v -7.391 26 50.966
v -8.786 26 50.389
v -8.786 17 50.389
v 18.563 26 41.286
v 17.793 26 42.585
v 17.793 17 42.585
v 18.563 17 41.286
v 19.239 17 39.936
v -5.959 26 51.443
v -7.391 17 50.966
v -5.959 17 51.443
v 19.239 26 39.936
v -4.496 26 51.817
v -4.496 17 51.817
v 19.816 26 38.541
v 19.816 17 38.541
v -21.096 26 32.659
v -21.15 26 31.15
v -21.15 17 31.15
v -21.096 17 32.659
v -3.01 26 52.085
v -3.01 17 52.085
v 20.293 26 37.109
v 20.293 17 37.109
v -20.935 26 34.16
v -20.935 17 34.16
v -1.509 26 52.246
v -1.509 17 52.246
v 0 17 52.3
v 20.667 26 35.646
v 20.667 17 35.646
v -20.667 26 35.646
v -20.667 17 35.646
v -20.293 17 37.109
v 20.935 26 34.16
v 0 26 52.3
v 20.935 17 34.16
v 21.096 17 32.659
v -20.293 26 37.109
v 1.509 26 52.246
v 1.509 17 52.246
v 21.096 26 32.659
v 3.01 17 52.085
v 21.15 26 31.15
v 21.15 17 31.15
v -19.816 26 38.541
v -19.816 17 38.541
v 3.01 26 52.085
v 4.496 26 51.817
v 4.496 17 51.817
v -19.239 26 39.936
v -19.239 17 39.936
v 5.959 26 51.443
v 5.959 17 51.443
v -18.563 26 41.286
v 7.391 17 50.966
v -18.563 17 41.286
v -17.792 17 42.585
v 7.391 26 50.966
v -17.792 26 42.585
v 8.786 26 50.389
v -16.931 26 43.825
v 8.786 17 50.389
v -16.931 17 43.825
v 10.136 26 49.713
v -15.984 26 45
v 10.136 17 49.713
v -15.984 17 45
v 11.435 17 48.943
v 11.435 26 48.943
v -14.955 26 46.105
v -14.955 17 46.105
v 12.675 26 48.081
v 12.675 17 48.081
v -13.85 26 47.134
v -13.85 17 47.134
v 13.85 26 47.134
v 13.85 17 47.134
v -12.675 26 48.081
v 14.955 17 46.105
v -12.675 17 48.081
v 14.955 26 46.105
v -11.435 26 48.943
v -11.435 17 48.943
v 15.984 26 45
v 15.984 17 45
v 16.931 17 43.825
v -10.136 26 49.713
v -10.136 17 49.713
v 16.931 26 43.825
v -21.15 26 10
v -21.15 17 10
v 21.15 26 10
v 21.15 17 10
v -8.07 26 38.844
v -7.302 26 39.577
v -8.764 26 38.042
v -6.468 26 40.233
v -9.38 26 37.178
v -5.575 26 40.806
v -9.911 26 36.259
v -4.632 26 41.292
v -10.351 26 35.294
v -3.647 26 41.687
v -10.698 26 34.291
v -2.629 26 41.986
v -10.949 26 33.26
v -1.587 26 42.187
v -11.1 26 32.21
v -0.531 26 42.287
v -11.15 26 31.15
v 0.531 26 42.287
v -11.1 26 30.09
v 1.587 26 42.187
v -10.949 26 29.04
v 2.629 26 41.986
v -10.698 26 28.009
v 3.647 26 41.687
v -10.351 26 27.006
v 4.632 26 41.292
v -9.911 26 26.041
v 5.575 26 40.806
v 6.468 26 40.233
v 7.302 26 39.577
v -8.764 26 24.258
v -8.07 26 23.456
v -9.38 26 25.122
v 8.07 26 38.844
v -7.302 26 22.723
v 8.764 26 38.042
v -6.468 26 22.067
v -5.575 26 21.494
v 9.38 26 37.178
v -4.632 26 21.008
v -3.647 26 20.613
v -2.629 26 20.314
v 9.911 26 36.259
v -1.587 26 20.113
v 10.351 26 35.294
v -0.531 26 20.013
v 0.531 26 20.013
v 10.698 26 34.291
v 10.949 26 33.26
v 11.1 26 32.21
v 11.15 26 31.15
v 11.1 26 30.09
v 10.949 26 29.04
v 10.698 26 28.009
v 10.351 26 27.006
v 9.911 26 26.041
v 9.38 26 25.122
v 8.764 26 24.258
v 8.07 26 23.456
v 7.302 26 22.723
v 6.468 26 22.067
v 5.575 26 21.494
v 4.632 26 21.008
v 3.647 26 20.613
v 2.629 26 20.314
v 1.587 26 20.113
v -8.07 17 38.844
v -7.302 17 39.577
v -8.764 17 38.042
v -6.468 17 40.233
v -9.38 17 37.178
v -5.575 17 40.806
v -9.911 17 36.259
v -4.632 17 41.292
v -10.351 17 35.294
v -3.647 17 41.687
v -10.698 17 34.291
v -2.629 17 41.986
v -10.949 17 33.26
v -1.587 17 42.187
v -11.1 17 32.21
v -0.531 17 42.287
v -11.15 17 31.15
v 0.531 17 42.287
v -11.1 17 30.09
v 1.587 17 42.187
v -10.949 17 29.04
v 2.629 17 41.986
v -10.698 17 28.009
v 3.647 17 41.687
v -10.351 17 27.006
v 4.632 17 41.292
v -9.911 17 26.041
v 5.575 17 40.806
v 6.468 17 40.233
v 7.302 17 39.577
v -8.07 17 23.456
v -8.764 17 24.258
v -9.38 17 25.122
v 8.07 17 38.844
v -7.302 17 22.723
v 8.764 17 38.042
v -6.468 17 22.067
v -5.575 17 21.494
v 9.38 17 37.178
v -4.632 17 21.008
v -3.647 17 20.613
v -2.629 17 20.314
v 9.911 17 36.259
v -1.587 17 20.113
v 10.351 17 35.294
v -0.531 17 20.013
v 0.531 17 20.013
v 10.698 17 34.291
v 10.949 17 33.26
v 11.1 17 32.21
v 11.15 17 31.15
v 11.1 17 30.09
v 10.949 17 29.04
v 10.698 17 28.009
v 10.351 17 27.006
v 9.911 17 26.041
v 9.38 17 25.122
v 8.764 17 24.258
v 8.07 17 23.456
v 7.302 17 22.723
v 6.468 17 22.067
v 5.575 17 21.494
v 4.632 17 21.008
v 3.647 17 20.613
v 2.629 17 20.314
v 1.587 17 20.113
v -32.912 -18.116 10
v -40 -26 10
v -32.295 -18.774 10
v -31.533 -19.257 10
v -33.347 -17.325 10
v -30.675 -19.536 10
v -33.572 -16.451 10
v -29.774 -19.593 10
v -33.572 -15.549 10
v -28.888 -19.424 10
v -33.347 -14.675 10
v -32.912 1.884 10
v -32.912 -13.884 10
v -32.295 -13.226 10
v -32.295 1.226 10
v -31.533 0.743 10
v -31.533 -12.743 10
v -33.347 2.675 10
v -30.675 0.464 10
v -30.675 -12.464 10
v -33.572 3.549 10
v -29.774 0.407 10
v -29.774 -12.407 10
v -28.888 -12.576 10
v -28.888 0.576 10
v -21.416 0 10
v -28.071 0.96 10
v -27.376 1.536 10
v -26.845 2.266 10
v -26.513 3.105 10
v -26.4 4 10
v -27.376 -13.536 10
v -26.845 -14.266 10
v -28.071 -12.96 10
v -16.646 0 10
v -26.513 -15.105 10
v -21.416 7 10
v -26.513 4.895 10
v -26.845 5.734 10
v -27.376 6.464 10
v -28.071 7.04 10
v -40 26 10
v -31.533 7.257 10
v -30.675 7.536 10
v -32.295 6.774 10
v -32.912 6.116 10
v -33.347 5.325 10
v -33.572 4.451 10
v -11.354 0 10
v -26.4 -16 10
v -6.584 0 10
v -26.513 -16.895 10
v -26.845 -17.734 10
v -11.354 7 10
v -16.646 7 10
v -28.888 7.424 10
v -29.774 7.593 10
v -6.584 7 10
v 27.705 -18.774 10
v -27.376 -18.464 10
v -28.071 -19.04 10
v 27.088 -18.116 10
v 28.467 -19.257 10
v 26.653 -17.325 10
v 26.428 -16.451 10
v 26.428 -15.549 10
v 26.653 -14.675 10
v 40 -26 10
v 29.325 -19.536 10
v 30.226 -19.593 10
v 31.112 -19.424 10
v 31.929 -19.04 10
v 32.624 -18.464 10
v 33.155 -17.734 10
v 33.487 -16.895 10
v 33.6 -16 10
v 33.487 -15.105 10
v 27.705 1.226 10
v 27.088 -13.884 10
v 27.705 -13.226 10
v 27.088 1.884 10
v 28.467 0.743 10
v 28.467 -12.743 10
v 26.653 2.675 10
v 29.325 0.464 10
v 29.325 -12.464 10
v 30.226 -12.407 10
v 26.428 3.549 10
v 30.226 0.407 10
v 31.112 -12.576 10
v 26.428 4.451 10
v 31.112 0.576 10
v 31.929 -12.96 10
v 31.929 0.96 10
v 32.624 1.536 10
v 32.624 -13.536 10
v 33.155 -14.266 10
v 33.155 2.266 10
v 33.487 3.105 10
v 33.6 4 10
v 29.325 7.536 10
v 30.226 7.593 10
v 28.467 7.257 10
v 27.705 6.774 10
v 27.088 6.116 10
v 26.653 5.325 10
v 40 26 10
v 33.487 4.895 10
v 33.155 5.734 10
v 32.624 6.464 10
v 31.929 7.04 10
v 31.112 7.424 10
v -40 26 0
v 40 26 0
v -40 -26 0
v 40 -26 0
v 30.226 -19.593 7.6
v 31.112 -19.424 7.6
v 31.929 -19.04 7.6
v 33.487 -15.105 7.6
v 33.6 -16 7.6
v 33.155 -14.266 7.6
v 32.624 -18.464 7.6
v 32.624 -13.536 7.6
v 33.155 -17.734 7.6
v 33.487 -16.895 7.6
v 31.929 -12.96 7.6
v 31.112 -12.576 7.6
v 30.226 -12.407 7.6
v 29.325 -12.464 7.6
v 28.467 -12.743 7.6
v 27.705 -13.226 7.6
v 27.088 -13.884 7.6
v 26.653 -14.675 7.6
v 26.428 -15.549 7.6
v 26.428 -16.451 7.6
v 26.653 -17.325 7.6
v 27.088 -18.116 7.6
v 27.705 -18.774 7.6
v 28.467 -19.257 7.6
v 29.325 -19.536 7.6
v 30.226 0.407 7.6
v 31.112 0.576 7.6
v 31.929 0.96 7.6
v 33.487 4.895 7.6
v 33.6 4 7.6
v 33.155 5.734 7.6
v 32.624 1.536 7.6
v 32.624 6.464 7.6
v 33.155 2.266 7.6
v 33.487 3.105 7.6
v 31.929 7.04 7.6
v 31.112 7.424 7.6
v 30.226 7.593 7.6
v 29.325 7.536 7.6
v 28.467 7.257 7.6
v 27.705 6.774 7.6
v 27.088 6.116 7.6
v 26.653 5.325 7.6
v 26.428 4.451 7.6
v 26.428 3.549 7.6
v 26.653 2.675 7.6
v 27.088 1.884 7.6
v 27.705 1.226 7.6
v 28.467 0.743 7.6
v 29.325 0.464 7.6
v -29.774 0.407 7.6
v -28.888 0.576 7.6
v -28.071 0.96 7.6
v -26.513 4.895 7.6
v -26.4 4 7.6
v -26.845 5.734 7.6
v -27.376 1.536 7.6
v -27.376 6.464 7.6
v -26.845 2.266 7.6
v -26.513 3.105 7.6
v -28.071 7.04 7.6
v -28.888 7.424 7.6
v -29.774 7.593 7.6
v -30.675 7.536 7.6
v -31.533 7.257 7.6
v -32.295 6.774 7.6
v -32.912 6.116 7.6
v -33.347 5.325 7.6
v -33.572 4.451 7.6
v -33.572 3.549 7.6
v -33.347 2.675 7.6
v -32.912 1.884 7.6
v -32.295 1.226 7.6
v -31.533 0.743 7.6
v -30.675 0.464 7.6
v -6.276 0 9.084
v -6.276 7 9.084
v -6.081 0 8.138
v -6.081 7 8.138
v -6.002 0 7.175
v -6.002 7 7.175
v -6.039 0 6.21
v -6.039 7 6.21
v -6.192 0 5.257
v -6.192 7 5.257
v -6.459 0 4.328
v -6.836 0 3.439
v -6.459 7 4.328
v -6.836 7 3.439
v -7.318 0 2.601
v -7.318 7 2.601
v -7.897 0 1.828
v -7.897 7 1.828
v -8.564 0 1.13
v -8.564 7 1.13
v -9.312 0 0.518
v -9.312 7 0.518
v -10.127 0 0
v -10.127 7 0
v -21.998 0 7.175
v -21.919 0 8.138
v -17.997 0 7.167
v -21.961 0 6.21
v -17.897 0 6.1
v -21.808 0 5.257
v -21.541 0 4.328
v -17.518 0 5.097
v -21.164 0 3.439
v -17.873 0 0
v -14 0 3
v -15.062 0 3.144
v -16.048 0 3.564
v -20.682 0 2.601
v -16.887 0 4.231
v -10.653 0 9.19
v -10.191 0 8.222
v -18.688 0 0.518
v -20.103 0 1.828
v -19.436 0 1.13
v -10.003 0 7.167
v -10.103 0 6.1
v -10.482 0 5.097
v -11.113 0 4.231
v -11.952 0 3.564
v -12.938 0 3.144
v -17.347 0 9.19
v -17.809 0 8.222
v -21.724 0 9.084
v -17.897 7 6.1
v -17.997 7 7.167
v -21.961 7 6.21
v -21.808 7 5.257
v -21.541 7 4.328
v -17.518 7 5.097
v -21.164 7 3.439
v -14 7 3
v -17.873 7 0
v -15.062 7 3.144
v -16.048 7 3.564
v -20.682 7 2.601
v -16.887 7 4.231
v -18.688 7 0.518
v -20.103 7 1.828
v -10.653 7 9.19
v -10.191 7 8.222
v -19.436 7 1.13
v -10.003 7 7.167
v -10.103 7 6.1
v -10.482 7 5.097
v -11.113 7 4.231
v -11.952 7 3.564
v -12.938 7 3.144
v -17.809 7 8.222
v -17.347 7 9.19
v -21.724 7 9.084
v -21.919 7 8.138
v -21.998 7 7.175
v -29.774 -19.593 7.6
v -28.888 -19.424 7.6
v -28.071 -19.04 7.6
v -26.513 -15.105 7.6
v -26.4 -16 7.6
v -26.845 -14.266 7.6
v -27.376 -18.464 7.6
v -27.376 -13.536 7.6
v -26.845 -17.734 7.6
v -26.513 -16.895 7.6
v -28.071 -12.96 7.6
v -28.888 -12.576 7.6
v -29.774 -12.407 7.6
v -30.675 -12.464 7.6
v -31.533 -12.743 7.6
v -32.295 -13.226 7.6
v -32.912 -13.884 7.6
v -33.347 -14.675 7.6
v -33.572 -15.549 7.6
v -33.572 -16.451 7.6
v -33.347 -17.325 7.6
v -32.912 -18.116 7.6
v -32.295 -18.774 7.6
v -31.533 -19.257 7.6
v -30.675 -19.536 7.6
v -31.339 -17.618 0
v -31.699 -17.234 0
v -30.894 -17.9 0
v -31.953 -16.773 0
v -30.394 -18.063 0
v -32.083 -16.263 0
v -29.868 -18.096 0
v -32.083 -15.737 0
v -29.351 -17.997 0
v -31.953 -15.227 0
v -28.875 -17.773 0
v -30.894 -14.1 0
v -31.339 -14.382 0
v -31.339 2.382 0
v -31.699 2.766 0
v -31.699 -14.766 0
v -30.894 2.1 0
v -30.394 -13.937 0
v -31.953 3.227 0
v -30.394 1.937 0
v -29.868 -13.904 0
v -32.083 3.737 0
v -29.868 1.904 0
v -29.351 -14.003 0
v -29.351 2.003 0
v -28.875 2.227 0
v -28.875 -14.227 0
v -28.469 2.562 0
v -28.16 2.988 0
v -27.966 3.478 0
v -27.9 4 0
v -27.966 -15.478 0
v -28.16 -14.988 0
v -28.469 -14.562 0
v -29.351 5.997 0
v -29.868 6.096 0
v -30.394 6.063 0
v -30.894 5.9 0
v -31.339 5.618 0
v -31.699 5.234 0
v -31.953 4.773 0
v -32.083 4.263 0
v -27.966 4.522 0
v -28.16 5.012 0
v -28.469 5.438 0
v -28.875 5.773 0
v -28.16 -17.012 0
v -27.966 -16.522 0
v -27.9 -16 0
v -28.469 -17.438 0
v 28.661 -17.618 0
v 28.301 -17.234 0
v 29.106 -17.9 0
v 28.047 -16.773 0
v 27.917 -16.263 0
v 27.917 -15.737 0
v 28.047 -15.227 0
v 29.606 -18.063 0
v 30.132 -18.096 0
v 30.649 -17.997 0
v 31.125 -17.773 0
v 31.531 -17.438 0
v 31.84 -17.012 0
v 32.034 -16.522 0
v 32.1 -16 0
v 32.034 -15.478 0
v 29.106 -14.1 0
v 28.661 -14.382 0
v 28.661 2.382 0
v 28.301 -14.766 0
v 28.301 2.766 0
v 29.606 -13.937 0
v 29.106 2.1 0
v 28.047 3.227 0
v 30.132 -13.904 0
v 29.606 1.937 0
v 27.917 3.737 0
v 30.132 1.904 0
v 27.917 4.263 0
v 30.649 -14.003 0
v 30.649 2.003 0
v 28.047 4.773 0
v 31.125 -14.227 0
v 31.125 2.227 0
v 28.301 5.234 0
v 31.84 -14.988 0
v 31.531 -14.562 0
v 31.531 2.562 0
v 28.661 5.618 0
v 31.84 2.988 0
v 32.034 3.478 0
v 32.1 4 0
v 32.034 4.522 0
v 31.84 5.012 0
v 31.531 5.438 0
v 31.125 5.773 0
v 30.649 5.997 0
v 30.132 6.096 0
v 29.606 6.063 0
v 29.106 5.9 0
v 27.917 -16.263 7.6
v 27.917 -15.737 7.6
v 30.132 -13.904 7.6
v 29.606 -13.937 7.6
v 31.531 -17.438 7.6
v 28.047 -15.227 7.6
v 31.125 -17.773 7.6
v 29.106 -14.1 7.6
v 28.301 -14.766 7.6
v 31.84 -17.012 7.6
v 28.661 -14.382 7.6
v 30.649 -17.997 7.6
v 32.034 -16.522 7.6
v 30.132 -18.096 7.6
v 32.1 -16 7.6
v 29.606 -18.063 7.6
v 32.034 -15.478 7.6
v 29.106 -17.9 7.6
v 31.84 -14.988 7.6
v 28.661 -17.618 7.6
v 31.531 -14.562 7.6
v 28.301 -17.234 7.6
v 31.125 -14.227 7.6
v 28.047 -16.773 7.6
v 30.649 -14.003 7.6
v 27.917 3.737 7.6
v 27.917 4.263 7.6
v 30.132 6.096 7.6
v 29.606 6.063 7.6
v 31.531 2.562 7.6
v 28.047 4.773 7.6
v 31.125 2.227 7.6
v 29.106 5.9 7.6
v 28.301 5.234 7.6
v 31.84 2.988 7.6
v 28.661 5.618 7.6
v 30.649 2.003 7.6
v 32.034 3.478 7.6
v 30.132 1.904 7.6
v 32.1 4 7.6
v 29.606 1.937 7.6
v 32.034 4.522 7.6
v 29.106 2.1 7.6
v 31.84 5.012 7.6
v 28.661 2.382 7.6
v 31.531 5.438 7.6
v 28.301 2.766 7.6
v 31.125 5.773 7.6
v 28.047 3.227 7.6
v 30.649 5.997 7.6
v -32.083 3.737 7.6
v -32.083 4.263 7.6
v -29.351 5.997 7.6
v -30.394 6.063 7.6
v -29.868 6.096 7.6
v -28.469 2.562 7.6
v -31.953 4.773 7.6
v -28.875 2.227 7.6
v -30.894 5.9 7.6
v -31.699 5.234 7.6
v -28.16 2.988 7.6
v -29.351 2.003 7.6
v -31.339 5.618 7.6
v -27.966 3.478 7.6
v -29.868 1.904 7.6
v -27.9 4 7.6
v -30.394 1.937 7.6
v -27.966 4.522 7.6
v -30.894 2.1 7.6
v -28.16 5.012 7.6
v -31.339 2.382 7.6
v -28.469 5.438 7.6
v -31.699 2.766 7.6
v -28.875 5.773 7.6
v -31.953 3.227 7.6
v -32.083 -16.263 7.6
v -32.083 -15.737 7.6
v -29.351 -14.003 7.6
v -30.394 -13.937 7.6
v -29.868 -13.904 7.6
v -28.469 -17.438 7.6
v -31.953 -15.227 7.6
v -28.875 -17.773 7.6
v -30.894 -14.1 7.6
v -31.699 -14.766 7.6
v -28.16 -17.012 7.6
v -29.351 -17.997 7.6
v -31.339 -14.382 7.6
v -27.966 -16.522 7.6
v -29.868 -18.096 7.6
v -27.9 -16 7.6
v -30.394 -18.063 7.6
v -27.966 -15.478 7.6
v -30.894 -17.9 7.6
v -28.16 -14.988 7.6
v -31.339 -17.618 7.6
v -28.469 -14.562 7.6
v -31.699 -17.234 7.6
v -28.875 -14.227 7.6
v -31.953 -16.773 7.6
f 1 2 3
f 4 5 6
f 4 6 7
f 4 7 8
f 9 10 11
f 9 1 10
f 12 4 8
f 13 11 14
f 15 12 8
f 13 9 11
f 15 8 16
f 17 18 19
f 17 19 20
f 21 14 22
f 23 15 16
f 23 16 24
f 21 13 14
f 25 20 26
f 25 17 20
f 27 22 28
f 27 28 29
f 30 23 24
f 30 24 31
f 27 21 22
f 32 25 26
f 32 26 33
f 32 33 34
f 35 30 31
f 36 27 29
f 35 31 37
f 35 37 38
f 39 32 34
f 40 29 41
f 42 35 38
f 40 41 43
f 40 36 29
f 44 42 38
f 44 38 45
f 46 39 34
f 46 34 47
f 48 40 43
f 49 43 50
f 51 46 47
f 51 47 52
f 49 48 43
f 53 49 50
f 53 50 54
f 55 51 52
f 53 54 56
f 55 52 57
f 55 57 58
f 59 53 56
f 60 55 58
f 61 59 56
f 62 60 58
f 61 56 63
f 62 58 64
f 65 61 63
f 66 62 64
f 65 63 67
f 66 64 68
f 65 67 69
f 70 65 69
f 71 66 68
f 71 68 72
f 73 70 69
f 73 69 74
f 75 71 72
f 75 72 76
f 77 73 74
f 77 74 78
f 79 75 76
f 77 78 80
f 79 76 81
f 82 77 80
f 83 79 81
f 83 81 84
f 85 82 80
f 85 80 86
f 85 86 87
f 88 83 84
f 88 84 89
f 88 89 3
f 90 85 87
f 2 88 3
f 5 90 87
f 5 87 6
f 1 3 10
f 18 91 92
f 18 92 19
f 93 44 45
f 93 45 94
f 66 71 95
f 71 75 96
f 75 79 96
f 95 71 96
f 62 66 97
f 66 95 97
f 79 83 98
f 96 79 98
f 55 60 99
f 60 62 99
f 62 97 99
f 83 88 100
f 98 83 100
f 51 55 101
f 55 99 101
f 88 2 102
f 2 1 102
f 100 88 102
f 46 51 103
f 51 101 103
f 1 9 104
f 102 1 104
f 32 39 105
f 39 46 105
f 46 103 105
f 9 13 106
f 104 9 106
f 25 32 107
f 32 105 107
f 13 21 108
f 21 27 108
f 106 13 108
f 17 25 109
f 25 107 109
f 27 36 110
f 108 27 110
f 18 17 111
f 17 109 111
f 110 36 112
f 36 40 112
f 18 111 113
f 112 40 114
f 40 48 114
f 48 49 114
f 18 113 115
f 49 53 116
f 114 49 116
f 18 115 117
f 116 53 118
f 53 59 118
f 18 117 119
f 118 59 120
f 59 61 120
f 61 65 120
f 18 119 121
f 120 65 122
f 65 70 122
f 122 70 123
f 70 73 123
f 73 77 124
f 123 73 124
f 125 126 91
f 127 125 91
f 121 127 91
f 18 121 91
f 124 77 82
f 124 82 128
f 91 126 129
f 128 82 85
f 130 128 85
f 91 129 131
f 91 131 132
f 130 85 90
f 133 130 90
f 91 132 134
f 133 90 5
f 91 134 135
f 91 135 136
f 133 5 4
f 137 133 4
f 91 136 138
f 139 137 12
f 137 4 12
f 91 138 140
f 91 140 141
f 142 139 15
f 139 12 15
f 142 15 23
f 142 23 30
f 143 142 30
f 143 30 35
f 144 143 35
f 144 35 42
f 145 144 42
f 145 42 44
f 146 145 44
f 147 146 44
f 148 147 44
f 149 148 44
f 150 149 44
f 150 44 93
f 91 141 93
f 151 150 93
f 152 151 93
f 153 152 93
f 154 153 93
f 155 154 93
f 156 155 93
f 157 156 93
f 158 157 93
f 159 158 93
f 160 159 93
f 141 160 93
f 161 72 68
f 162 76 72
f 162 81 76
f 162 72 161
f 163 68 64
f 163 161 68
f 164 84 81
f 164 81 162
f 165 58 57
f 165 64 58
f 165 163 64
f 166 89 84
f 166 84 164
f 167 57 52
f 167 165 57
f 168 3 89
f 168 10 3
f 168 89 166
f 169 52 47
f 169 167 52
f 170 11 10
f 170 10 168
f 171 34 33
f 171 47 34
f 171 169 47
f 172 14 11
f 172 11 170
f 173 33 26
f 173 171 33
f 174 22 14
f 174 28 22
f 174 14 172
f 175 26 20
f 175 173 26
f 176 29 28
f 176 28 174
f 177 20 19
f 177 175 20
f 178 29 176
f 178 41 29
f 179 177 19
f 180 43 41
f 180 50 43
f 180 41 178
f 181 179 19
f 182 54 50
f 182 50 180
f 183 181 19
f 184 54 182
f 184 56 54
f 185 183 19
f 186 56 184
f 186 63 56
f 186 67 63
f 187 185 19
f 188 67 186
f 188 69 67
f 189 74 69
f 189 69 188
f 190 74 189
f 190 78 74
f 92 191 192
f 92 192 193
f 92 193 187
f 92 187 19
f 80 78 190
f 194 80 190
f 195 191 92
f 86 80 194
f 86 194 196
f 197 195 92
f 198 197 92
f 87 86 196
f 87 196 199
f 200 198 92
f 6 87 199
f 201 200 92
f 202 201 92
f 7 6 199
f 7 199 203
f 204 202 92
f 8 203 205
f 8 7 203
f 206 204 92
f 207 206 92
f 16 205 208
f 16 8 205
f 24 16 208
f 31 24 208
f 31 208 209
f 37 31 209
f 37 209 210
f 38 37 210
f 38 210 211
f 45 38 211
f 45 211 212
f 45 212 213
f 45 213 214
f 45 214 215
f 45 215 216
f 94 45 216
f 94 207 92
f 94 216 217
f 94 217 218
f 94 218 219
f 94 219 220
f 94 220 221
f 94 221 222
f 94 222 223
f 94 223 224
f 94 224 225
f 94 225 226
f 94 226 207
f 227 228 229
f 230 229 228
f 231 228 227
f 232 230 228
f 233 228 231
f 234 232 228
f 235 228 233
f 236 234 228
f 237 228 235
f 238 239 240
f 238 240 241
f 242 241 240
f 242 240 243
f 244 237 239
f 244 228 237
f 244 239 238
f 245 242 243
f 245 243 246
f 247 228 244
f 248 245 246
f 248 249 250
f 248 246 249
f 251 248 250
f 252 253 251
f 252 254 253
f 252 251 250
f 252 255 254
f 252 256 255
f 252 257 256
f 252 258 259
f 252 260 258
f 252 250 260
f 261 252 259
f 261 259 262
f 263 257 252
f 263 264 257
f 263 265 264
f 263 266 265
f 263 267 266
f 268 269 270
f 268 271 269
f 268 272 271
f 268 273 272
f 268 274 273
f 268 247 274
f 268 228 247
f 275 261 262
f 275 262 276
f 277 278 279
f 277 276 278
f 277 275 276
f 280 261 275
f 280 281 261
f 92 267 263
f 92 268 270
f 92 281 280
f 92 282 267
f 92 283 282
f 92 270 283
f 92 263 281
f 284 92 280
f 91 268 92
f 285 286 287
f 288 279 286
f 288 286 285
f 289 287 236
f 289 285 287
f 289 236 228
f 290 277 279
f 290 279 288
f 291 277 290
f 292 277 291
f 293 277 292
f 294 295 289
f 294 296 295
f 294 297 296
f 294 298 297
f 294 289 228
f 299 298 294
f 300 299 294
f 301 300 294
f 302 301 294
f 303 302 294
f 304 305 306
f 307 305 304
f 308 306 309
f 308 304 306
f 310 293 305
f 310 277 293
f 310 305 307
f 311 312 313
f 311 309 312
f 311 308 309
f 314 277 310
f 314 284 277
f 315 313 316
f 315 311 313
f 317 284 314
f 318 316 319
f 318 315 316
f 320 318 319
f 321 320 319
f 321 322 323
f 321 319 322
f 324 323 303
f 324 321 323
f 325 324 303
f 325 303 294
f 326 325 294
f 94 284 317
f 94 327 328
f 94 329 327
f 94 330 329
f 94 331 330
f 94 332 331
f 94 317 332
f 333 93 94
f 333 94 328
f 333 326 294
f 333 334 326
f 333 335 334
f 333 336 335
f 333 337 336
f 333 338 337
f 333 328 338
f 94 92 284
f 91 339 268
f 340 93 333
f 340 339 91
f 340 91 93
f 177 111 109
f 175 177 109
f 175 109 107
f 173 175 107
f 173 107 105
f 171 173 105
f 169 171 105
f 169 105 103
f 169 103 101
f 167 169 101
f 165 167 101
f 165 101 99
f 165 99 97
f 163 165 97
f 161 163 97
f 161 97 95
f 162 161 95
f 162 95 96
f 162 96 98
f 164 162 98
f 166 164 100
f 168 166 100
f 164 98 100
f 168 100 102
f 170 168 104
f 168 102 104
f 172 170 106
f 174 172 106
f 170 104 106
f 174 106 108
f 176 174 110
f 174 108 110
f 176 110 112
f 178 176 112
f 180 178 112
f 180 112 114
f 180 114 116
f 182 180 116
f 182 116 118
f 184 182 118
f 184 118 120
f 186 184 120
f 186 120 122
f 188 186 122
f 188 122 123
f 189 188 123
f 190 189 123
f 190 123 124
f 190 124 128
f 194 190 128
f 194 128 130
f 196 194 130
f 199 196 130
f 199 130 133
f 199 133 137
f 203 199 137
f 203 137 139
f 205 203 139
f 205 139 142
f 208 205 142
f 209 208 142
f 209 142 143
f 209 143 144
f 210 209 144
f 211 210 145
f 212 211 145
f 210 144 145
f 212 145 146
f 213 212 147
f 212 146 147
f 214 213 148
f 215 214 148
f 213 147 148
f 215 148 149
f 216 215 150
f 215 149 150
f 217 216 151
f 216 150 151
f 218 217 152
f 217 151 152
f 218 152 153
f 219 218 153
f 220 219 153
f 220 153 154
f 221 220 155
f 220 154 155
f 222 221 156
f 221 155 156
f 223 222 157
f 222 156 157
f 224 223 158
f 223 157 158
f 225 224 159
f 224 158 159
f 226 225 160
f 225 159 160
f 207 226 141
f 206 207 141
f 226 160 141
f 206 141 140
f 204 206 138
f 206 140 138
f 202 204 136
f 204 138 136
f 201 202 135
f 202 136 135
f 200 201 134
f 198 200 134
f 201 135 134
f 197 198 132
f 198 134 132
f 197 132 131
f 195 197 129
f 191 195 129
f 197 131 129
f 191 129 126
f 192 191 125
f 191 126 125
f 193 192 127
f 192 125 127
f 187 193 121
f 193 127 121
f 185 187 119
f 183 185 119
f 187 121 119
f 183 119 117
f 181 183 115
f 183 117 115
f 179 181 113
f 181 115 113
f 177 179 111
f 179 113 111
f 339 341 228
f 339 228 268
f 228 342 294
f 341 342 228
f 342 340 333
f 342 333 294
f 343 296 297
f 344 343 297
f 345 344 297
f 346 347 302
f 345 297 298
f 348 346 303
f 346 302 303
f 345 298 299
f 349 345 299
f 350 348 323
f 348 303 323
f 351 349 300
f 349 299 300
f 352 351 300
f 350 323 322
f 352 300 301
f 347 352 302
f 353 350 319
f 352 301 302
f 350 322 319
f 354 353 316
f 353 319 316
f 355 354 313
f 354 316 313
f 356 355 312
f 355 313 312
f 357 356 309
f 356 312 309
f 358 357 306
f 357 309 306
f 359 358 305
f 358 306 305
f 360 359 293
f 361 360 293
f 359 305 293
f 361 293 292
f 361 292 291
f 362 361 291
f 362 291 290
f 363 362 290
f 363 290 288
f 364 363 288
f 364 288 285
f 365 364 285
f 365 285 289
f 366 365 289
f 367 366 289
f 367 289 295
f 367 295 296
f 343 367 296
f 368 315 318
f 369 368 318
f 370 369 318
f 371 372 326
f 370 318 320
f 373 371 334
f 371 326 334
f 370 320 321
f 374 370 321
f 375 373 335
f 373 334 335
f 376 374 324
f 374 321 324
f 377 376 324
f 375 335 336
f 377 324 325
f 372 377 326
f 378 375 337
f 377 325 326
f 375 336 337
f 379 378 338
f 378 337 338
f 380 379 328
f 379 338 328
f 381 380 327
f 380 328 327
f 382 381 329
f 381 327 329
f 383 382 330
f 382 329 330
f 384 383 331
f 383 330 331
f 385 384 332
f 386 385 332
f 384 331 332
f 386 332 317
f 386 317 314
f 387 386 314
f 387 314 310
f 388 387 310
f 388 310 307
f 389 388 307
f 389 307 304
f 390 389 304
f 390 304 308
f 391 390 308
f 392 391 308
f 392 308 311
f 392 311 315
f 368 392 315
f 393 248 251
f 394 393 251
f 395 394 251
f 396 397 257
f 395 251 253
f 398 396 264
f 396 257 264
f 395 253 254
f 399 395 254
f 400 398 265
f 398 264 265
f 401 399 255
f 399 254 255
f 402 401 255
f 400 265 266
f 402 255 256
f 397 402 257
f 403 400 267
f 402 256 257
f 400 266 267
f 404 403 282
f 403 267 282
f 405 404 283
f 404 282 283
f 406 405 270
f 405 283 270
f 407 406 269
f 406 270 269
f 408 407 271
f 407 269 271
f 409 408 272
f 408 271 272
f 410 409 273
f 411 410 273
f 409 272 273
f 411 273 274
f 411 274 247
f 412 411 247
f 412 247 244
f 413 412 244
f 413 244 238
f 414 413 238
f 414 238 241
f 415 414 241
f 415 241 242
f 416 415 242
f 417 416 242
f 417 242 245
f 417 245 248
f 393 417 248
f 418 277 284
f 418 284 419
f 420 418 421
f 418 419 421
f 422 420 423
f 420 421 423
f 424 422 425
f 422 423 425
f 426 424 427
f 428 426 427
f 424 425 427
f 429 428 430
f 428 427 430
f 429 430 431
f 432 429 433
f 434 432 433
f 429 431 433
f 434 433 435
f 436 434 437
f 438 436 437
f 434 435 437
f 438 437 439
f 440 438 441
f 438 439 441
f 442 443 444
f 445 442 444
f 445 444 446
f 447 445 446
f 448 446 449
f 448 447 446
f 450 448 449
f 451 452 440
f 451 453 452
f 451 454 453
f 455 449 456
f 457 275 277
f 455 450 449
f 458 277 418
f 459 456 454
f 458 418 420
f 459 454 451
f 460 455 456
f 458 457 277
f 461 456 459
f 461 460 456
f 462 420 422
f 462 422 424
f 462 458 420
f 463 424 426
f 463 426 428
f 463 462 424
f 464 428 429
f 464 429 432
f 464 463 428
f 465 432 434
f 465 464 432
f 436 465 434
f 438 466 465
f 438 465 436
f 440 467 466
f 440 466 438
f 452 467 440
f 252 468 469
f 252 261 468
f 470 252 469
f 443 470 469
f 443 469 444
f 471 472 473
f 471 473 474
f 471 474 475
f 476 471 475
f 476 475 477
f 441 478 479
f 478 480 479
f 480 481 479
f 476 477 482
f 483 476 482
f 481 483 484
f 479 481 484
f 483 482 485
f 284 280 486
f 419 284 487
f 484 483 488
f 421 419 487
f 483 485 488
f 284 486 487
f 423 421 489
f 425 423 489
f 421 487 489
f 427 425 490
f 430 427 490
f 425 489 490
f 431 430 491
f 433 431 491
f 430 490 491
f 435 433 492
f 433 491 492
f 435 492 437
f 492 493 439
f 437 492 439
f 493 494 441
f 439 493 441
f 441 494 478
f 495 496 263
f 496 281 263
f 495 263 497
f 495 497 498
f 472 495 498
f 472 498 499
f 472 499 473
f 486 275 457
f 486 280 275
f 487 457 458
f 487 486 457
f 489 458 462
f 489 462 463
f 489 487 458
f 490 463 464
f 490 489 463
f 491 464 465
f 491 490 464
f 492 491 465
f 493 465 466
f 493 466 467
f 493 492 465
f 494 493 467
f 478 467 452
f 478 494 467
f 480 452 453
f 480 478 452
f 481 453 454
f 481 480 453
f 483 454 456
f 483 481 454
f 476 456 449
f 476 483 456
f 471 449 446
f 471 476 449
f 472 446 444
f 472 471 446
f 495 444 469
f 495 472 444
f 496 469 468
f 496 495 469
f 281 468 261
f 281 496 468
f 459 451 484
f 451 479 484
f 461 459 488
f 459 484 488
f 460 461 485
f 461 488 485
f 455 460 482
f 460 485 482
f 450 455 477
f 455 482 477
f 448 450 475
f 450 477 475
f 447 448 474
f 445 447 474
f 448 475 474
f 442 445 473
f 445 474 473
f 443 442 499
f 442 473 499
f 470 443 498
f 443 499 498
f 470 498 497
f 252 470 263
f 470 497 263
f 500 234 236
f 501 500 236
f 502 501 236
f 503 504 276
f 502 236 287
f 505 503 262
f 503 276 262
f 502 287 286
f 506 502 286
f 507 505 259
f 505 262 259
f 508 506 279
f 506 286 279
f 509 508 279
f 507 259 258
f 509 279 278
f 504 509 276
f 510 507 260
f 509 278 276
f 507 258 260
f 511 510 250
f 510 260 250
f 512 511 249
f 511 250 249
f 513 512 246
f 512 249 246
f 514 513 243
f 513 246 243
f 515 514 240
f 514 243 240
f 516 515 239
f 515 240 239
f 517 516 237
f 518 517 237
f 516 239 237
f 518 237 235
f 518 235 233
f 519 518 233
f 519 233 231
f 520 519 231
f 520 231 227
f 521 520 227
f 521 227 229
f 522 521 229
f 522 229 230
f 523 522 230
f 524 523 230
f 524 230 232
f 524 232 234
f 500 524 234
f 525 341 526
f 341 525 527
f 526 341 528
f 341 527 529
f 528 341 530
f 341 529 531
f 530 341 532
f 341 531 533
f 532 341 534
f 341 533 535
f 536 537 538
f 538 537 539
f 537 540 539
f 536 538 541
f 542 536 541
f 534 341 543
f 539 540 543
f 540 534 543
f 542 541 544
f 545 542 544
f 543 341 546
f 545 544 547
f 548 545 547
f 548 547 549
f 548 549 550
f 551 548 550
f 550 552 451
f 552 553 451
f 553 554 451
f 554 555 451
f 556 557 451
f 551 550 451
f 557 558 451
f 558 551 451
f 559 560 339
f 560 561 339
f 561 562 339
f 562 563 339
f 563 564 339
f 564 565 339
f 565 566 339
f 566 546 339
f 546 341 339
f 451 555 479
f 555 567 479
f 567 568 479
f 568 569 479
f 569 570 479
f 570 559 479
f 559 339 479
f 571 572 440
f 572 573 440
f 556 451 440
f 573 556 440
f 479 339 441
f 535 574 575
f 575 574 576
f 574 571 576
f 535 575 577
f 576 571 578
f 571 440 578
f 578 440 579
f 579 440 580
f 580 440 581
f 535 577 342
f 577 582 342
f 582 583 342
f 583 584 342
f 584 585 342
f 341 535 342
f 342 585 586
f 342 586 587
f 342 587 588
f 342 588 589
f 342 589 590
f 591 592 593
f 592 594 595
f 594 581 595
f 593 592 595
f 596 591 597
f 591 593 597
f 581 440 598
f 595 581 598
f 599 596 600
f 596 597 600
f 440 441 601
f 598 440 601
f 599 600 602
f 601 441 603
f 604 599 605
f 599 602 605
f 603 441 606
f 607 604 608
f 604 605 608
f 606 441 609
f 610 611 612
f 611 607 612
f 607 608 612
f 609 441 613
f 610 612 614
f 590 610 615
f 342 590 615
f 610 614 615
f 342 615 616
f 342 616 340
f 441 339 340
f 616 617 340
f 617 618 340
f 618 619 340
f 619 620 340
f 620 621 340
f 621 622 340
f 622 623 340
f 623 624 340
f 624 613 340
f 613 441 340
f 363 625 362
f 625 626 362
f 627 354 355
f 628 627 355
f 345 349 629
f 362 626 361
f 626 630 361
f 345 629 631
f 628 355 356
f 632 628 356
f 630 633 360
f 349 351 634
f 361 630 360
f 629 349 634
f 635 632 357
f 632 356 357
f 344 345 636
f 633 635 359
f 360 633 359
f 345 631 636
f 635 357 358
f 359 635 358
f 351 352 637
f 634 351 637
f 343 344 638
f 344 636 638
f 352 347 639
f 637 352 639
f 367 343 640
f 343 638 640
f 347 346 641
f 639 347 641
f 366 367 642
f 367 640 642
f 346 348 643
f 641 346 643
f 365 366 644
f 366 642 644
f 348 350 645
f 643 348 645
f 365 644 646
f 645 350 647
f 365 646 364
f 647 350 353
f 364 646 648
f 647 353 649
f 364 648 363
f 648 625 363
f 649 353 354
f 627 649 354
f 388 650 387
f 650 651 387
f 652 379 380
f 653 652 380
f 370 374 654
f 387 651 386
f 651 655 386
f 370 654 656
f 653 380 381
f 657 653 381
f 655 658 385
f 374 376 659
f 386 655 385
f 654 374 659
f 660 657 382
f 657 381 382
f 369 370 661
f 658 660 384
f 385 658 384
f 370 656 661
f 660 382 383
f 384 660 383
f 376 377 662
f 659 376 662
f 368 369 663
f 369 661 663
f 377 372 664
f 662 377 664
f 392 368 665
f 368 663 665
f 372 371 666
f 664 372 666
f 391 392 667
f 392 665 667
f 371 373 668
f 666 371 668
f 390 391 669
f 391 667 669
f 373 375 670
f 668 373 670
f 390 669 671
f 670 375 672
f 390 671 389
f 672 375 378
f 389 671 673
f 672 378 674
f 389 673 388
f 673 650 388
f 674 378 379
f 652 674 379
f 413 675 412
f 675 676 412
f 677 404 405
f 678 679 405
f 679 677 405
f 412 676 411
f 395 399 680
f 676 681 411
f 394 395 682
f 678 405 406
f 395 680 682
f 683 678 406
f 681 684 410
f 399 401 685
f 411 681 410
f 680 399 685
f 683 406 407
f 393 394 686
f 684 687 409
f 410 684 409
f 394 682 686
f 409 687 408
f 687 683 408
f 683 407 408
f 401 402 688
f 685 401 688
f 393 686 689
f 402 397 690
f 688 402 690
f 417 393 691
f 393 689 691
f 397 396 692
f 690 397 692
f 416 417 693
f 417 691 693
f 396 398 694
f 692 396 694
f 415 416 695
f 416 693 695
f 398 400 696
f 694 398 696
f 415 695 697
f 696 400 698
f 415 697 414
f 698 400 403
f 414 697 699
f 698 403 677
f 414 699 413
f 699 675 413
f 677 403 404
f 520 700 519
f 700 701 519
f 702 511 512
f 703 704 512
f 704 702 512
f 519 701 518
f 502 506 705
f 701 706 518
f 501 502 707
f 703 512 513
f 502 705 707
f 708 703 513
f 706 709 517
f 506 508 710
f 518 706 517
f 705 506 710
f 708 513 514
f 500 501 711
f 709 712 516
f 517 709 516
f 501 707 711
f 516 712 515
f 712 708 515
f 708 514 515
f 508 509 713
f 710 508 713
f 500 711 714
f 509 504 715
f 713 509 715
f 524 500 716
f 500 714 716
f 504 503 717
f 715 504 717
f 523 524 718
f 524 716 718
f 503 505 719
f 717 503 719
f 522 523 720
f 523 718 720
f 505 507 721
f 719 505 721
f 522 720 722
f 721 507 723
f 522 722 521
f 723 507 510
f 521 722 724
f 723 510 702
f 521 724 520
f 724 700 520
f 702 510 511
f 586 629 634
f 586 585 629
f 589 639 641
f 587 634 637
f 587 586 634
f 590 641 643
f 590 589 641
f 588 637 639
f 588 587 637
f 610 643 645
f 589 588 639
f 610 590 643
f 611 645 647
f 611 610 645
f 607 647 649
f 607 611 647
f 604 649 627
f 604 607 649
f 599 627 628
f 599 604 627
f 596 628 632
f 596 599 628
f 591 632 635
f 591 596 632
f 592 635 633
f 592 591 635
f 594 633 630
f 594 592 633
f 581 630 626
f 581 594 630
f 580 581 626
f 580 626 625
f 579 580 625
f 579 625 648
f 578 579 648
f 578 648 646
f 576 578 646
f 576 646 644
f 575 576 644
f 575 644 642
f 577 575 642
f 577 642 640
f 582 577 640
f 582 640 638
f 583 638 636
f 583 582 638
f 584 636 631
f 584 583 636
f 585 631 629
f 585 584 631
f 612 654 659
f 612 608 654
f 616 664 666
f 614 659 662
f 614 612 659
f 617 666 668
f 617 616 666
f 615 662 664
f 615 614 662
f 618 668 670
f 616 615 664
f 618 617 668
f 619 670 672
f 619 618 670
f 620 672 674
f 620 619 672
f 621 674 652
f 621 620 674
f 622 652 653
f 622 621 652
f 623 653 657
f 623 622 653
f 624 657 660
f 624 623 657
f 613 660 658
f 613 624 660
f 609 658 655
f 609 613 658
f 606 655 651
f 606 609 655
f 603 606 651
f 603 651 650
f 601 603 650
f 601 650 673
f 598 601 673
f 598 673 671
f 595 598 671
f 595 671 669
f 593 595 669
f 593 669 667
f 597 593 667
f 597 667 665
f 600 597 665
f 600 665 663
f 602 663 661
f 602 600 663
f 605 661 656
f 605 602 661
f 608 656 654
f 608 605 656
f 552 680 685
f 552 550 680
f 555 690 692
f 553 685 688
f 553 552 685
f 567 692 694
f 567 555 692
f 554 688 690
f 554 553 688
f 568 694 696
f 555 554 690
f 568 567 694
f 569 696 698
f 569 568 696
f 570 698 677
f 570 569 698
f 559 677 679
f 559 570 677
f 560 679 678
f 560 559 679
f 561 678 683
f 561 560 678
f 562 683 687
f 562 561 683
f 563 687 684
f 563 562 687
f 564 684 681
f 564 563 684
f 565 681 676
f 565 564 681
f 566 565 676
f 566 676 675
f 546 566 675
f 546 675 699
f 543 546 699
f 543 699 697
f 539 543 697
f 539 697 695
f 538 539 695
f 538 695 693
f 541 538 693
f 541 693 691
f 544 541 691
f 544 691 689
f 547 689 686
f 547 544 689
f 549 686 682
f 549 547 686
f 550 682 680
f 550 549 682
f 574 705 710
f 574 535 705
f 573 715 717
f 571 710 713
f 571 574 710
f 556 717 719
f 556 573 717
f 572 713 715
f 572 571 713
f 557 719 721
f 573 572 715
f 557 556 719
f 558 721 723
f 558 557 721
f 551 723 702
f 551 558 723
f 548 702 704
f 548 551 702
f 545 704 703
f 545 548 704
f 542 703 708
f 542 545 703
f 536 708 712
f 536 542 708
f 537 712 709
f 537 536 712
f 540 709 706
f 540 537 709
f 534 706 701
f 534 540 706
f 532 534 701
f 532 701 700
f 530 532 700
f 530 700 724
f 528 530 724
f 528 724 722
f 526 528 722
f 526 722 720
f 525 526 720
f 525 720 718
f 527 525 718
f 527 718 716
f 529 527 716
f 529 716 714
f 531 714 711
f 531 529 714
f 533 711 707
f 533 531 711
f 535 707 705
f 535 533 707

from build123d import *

# Parameters (mm, degrees)
CYLINDER001_R       = 4
CYLINDER001_DEPTH   = 10
CYLINDER_R          = 8
CYLINDER_DEPTH      = 7
CUT_PITCH_ANGLE     = 90
CUT_PLACEMENT_ANGLE = 90
SKETCH_W            = 80
SKETCH_H            = 52
SKETCH_R            = 2.1
PAD_DEPTH           = 10
SKETCH009_R         = 11.15
PAD001_DEPTH        = 9
SKETCH010_R         = 3.6
POCKET_DEPTH        = 2.4


with BuildPart() as zylinder001:
    # Cylinder001 → Cylinder001 (new body)
    with BuildSketch(Plane.XY):
        Circle(CYLINDER001_R)
    extrude(amount=CYLINDER001_DEPTH)


with BuildPart() as cut:
    # Cylinder → Cylinder (new body)
    with BuildSketch(Plane.XY):
        Circle(CYLINDER_R)
    extrude(amount=CYLINDER_DEPTH)

    # Cut: cut Zylinder001
    add(zylinder001.part, mode=Mode.SUBTRACT)


with BuildPart() as cut_1:
    # Cut pitch: moved
    add(cut.part.rotate(Axis((0, 0, 0), (0, 1, 0)), CUT_PITCH_ANGLE))


with BuildPart() as cut_2:
    # Cut placement: moved
    add(cut_1.part.moved(Location((-14, 0, 7))).rotate(Axis((-14, 0, 7), (0, 0, 1)), CUT_PLACEMENT_ANGLE))


with BuildPart() as pocket:
    # Sketch → Pad (new body)
    with BuildSketch(Plane.XY):
        Rectangle(SKETCH_W, SKETCH_H)
        with Locations((-30, -16)):
            Circle(SKETCH_R, mode=Mode.SUBTRACT)
        with Locations((-30, 4)):
            Circle(SKETCH_R, mode=Mode.SUBTRACT)
        with Locations((30, 4)):
            Circle(SKETCH_R, mode=Mode.SUBTRACT)
        with Locations((30, -16)):
            Circle(SKETCH_R, mode=Mode.SUBTRACT)
    extrude(amount=PAD_DEPTH)

    # Sketch009 → Pad001 (new body)
    with BuildSketch(Plane(origin=(0, 26, 0), x_dir=(-1, 0, 0), z_dir=(0, 1, 0))):
        with BuildLine():
            ThreePointArc((21.15, 31.150033), (-1.7e-05, 52.3), (-21.15, 31.15))
            Line((-21.15, 31.15), (-21.15, 10))
            Line((-21.15, 10), (21.15, 10))
            Line((21.15, 10), (21.15, 31.150033))
        make_face()
        with Locations((0, 31.15)):
            Circle(SKETCH009_R, mode=Mode.SUBTRACT)
    extrude(amount=-PAD001_DEPTH)

    # Cut001: cut Cut
    add(cut_2.part, mode=Mode.SUBTRACT)

    # Sketch010 → Pocket (cut)
    with BuildSketch(Plane.XY.offset(10)):
        with Locations((-30, 4)):
            Circle(SKETCH010_R)
        with Locations((-30, -16)):
            Circle(SKETCH010_R)
        with Locations((30, -16)):
            Circle(SKETCH010_R)
        with Locations((30, 4)):
            Circle(SKETCH010_R)
    extrude(amount=-POCKET_DEPTH, mode=Mode.SUBTRACT)


solid = pocket.part
